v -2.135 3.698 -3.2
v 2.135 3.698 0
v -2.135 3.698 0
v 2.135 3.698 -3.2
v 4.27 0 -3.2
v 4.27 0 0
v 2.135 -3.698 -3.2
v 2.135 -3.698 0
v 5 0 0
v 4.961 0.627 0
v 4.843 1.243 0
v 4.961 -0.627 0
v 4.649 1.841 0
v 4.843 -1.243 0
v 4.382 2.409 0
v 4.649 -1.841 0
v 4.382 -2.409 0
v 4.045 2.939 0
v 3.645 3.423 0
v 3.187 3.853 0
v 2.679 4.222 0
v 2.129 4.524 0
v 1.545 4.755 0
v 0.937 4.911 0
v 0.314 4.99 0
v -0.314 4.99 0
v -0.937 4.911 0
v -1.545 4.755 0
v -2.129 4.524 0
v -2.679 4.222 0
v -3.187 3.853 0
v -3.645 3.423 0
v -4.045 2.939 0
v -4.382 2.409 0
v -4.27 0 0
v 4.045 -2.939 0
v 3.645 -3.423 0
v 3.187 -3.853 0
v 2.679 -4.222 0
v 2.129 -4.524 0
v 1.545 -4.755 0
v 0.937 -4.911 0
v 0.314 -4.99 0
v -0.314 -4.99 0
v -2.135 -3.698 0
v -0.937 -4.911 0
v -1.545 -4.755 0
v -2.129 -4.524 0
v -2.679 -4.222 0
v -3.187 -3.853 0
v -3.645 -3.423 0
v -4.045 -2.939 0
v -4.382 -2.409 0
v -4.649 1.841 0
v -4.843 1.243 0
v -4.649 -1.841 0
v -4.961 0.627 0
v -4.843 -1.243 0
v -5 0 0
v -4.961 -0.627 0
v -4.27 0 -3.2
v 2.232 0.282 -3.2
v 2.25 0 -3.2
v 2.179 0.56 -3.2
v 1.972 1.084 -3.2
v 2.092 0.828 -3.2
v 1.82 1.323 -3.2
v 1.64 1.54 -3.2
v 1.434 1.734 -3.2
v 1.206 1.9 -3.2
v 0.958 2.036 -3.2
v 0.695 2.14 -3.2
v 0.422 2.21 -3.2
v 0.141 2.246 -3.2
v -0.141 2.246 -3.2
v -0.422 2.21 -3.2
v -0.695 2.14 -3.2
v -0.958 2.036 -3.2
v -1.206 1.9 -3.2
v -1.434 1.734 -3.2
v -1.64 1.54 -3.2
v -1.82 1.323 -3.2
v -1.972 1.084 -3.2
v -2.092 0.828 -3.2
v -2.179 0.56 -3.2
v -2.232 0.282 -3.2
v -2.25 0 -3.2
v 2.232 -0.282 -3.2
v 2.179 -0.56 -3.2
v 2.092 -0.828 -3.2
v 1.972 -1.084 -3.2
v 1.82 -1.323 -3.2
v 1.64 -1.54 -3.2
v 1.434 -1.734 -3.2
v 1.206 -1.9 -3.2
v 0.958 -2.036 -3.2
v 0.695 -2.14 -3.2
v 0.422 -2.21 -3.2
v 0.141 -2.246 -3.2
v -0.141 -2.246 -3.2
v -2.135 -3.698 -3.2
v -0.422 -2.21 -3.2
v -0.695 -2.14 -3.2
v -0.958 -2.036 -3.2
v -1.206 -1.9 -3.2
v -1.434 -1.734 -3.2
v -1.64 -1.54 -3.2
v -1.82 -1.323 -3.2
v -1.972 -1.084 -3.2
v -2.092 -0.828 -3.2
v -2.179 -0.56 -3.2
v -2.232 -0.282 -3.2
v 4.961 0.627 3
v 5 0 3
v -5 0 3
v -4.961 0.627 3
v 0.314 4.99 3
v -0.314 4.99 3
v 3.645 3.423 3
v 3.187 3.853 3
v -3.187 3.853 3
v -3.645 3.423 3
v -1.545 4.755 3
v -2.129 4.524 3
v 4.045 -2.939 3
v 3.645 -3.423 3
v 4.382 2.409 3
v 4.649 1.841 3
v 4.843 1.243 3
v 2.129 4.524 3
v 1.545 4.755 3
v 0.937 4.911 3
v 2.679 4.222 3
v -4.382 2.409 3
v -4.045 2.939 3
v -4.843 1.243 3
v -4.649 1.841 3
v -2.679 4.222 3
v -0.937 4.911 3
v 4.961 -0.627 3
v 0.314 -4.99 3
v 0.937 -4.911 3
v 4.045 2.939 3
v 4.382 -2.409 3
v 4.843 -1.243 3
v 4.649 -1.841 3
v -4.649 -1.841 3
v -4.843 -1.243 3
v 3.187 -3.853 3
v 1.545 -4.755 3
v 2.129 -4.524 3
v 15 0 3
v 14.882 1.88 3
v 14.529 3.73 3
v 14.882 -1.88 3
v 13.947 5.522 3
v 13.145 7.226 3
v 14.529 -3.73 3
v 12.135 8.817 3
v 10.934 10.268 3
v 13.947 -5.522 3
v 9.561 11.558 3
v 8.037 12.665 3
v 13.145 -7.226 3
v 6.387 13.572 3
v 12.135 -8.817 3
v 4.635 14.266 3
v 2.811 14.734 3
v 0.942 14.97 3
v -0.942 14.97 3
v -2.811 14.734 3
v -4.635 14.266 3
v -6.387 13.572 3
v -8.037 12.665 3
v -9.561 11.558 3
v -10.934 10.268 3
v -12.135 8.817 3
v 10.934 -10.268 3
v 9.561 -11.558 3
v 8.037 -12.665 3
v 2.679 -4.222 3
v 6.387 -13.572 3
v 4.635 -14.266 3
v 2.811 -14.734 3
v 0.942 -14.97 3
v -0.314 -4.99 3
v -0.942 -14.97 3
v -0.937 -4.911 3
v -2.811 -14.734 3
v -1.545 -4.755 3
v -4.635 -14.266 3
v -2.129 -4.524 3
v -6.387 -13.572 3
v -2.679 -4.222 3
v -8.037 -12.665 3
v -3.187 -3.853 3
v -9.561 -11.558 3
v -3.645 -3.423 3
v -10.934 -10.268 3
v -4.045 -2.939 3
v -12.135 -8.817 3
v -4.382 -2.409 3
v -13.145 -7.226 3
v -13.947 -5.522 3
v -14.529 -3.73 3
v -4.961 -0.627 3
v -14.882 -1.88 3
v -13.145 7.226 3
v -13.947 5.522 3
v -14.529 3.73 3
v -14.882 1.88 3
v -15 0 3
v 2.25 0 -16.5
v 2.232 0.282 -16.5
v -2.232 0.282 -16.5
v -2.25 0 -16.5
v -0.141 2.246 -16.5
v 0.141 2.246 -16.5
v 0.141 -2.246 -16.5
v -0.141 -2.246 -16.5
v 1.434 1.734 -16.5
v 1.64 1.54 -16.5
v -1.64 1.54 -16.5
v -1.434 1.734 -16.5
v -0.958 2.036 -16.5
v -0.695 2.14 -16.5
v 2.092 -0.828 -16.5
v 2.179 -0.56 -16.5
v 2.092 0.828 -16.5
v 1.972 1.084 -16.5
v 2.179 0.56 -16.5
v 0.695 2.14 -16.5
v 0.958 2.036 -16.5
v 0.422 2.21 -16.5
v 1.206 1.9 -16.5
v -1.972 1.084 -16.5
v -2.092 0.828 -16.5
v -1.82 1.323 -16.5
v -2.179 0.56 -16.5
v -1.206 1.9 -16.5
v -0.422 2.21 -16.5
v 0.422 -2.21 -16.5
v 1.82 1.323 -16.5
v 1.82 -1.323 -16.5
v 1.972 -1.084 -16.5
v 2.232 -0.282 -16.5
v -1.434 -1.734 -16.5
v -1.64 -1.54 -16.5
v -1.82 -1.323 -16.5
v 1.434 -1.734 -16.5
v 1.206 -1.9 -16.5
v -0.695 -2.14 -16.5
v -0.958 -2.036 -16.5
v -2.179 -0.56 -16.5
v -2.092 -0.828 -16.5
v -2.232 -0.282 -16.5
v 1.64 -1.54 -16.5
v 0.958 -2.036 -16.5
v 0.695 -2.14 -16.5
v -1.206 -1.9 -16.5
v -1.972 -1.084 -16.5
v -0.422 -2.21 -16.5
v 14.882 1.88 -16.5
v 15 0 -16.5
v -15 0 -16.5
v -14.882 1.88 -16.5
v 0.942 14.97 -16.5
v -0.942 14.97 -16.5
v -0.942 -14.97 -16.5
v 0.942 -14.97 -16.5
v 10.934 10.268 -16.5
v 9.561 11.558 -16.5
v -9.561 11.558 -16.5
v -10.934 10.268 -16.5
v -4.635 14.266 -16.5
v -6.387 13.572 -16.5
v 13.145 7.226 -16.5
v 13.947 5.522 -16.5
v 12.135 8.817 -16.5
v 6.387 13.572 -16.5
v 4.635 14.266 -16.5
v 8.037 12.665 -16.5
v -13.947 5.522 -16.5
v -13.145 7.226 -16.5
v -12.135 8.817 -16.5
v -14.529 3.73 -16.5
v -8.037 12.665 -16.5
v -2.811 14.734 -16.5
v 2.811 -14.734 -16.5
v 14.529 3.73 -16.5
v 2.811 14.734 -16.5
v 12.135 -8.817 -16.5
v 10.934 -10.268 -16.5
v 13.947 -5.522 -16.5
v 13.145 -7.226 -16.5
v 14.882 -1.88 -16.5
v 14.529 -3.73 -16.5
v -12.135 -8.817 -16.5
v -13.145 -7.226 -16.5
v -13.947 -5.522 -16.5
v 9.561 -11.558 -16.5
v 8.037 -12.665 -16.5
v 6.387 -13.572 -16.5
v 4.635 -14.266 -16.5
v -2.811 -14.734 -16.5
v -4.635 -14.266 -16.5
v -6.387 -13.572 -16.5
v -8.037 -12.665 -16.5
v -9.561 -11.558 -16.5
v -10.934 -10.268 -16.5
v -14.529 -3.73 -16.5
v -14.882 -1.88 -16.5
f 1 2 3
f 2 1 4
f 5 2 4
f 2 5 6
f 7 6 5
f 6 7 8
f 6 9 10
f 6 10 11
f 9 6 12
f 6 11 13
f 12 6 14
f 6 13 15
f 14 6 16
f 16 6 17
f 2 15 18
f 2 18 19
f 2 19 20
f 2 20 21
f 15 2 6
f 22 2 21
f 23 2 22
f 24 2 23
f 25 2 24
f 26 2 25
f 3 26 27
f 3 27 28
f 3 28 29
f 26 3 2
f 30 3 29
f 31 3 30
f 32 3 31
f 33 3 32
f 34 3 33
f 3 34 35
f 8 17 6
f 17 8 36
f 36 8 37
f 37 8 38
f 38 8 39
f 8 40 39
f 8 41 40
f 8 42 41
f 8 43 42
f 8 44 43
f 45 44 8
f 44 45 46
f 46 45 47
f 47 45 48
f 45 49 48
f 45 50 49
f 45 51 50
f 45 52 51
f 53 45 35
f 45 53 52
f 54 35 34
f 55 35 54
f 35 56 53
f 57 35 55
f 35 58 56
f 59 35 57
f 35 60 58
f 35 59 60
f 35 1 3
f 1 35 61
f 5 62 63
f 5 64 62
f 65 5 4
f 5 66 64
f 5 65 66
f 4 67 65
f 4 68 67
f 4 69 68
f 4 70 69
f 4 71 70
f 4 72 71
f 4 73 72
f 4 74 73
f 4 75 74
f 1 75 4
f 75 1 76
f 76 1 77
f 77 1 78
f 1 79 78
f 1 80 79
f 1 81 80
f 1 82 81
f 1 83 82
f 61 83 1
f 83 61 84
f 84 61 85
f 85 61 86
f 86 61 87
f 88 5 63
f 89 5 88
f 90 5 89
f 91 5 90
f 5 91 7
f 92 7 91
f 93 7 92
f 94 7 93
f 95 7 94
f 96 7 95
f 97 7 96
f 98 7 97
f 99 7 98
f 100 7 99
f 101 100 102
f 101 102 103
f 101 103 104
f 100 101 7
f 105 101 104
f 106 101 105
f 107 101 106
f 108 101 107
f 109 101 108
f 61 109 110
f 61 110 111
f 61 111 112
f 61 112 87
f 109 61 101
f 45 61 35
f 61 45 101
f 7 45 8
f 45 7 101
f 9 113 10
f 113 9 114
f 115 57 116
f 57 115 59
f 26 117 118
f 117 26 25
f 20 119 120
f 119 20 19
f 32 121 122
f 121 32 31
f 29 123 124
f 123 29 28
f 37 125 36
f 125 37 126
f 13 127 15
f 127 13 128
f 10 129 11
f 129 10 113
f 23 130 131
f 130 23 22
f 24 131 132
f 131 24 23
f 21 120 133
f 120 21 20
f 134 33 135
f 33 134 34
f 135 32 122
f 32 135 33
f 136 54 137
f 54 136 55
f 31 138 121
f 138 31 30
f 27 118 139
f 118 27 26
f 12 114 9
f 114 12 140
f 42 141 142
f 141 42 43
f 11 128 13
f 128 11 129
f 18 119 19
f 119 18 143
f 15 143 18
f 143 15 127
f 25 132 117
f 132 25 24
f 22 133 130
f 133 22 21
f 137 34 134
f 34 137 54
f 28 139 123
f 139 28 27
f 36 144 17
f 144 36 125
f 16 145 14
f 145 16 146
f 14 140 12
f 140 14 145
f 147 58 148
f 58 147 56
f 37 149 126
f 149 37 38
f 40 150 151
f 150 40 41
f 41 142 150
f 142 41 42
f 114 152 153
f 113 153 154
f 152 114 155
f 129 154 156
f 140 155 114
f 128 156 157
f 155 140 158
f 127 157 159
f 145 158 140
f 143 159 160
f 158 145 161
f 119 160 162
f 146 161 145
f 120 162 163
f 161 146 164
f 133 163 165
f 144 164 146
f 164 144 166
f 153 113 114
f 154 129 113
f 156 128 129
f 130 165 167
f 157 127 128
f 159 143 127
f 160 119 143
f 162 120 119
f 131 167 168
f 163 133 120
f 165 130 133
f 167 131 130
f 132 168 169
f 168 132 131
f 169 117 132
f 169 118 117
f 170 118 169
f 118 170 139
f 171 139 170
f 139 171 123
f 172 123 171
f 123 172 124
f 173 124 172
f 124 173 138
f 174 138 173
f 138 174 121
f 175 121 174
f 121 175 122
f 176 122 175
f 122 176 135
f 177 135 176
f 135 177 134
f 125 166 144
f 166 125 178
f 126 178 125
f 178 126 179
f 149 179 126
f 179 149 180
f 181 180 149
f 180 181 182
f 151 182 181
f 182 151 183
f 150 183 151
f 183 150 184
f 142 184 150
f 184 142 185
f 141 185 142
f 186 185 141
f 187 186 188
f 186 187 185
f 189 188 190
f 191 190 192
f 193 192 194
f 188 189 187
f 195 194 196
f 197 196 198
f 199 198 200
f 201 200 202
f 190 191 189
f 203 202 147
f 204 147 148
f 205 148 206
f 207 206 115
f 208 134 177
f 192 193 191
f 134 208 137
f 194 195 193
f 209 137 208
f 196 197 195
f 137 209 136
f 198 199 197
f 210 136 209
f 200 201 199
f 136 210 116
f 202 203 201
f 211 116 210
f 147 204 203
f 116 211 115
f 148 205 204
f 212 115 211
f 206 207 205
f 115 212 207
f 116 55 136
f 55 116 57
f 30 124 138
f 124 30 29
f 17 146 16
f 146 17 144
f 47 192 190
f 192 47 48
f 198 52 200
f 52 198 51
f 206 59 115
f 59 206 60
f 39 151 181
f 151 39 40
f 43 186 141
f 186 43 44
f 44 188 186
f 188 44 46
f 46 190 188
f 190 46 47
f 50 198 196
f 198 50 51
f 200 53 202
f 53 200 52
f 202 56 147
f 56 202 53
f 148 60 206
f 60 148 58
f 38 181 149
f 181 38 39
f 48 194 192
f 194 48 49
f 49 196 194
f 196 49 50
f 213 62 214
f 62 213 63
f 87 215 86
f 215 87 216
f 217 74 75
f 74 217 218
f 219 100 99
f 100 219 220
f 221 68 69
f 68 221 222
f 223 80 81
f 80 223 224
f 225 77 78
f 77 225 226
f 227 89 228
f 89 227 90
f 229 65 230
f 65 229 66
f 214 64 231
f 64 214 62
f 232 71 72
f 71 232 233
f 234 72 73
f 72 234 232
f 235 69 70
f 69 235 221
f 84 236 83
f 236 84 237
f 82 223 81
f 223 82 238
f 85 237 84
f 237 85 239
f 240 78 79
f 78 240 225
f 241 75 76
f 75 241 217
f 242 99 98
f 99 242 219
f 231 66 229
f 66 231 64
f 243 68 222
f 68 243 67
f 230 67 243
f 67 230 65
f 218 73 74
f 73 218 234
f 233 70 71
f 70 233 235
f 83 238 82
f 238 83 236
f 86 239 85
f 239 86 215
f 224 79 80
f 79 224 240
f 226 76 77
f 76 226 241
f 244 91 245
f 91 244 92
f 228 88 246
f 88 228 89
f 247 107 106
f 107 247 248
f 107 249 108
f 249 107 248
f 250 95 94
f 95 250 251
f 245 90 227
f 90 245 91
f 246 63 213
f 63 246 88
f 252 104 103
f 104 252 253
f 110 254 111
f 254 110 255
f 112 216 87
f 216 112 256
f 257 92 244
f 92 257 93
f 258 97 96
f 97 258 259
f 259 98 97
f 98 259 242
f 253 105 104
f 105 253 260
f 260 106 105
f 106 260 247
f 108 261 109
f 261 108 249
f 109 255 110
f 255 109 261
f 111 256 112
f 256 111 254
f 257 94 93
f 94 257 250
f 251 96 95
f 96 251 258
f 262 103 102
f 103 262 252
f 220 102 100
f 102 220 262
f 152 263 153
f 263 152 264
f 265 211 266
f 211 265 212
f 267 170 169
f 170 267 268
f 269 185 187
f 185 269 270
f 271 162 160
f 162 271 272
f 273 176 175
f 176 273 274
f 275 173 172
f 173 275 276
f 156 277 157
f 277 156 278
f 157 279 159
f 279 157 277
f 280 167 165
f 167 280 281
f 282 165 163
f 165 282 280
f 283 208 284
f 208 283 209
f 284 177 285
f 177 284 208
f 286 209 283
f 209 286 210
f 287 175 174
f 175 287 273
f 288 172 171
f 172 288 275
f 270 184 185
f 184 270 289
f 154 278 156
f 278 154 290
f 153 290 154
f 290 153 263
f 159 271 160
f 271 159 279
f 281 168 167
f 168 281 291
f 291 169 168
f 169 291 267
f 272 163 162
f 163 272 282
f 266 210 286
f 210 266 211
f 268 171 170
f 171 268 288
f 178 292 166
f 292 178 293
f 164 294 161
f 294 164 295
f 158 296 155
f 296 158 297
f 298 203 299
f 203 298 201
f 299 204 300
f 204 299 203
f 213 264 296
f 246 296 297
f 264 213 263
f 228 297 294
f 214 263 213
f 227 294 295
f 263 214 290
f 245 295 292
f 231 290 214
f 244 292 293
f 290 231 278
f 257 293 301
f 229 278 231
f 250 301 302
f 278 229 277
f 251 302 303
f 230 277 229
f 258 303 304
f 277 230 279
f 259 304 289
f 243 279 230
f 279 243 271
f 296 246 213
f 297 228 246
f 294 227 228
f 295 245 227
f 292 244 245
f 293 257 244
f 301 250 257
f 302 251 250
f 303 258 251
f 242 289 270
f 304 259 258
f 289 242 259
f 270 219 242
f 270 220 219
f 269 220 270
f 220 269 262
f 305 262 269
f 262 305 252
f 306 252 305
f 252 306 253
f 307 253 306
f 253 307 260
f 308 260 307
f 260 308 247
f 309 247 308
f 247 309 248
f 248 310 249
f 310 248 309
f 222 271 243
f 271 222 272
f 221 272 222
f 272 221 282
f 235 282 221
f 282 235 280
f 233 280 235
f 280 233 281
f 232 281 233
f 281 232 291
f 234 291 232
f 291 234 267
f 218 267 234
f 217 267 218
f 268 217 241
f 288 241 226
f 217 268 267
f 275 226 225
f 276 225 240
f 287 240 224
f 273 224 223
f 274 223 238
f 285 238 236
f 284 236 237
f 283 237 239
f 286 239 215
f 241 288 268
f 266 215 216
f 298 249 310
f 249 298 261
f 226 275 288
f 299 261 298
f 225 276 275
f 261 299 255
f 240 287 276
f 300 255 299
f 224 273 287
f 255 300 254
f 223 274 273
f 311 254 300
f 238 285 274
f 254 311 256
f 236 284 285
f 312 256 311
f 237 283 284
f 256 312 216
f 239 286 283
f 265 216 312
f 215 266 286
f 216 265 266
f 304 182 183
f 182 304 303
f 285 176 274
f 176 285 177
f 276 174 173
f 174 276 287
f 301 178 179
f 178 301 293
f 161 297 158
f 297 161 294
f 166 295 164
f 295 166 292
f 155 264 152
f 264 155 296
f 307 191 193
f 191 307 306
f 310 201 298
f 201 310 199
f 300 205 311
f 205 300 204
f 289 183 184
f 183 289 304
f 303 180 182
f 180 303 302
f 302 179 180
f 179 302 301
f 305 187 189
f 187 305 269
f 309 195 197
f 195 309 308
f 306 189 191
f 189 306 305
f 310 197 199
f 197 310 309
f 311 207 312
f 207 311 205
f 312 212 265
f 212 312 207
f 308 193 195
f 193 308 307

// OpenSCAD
$fn = 50;

difference() {
	union() {
		translate(v = [0, 0, -16.5]) {
			cylinder(h = 19.5, r = 15.0);
		}
	}
	union() {
		translate(v = [0, 0, 0]) {
			rotate(a = [0, 0, 0]) {
				difference() {
					union() {
						translate(v = [0, 0, -3.2]) {
							linear_extrude(height = 3.2) {
								polygon(points = [[4.2698, 0.0], [2.1349000000000005, 3.697755269078796], [-2.134899999999999, 3.6977552690787965], [-4.2698, 5.228996902999369e-16], [-2.134900000000002, -3.6977552690787956], [2.1348999999999974, -3.697755269078798]]);
							}
						}
					}
					union();
				}
			}
		}
		#cylinder(h = 3, r = 5.0);
		#translate(v = [0, 0, -100.0]) {
			cylinder(h = 200, r = 2.25);
		}
	}
}
